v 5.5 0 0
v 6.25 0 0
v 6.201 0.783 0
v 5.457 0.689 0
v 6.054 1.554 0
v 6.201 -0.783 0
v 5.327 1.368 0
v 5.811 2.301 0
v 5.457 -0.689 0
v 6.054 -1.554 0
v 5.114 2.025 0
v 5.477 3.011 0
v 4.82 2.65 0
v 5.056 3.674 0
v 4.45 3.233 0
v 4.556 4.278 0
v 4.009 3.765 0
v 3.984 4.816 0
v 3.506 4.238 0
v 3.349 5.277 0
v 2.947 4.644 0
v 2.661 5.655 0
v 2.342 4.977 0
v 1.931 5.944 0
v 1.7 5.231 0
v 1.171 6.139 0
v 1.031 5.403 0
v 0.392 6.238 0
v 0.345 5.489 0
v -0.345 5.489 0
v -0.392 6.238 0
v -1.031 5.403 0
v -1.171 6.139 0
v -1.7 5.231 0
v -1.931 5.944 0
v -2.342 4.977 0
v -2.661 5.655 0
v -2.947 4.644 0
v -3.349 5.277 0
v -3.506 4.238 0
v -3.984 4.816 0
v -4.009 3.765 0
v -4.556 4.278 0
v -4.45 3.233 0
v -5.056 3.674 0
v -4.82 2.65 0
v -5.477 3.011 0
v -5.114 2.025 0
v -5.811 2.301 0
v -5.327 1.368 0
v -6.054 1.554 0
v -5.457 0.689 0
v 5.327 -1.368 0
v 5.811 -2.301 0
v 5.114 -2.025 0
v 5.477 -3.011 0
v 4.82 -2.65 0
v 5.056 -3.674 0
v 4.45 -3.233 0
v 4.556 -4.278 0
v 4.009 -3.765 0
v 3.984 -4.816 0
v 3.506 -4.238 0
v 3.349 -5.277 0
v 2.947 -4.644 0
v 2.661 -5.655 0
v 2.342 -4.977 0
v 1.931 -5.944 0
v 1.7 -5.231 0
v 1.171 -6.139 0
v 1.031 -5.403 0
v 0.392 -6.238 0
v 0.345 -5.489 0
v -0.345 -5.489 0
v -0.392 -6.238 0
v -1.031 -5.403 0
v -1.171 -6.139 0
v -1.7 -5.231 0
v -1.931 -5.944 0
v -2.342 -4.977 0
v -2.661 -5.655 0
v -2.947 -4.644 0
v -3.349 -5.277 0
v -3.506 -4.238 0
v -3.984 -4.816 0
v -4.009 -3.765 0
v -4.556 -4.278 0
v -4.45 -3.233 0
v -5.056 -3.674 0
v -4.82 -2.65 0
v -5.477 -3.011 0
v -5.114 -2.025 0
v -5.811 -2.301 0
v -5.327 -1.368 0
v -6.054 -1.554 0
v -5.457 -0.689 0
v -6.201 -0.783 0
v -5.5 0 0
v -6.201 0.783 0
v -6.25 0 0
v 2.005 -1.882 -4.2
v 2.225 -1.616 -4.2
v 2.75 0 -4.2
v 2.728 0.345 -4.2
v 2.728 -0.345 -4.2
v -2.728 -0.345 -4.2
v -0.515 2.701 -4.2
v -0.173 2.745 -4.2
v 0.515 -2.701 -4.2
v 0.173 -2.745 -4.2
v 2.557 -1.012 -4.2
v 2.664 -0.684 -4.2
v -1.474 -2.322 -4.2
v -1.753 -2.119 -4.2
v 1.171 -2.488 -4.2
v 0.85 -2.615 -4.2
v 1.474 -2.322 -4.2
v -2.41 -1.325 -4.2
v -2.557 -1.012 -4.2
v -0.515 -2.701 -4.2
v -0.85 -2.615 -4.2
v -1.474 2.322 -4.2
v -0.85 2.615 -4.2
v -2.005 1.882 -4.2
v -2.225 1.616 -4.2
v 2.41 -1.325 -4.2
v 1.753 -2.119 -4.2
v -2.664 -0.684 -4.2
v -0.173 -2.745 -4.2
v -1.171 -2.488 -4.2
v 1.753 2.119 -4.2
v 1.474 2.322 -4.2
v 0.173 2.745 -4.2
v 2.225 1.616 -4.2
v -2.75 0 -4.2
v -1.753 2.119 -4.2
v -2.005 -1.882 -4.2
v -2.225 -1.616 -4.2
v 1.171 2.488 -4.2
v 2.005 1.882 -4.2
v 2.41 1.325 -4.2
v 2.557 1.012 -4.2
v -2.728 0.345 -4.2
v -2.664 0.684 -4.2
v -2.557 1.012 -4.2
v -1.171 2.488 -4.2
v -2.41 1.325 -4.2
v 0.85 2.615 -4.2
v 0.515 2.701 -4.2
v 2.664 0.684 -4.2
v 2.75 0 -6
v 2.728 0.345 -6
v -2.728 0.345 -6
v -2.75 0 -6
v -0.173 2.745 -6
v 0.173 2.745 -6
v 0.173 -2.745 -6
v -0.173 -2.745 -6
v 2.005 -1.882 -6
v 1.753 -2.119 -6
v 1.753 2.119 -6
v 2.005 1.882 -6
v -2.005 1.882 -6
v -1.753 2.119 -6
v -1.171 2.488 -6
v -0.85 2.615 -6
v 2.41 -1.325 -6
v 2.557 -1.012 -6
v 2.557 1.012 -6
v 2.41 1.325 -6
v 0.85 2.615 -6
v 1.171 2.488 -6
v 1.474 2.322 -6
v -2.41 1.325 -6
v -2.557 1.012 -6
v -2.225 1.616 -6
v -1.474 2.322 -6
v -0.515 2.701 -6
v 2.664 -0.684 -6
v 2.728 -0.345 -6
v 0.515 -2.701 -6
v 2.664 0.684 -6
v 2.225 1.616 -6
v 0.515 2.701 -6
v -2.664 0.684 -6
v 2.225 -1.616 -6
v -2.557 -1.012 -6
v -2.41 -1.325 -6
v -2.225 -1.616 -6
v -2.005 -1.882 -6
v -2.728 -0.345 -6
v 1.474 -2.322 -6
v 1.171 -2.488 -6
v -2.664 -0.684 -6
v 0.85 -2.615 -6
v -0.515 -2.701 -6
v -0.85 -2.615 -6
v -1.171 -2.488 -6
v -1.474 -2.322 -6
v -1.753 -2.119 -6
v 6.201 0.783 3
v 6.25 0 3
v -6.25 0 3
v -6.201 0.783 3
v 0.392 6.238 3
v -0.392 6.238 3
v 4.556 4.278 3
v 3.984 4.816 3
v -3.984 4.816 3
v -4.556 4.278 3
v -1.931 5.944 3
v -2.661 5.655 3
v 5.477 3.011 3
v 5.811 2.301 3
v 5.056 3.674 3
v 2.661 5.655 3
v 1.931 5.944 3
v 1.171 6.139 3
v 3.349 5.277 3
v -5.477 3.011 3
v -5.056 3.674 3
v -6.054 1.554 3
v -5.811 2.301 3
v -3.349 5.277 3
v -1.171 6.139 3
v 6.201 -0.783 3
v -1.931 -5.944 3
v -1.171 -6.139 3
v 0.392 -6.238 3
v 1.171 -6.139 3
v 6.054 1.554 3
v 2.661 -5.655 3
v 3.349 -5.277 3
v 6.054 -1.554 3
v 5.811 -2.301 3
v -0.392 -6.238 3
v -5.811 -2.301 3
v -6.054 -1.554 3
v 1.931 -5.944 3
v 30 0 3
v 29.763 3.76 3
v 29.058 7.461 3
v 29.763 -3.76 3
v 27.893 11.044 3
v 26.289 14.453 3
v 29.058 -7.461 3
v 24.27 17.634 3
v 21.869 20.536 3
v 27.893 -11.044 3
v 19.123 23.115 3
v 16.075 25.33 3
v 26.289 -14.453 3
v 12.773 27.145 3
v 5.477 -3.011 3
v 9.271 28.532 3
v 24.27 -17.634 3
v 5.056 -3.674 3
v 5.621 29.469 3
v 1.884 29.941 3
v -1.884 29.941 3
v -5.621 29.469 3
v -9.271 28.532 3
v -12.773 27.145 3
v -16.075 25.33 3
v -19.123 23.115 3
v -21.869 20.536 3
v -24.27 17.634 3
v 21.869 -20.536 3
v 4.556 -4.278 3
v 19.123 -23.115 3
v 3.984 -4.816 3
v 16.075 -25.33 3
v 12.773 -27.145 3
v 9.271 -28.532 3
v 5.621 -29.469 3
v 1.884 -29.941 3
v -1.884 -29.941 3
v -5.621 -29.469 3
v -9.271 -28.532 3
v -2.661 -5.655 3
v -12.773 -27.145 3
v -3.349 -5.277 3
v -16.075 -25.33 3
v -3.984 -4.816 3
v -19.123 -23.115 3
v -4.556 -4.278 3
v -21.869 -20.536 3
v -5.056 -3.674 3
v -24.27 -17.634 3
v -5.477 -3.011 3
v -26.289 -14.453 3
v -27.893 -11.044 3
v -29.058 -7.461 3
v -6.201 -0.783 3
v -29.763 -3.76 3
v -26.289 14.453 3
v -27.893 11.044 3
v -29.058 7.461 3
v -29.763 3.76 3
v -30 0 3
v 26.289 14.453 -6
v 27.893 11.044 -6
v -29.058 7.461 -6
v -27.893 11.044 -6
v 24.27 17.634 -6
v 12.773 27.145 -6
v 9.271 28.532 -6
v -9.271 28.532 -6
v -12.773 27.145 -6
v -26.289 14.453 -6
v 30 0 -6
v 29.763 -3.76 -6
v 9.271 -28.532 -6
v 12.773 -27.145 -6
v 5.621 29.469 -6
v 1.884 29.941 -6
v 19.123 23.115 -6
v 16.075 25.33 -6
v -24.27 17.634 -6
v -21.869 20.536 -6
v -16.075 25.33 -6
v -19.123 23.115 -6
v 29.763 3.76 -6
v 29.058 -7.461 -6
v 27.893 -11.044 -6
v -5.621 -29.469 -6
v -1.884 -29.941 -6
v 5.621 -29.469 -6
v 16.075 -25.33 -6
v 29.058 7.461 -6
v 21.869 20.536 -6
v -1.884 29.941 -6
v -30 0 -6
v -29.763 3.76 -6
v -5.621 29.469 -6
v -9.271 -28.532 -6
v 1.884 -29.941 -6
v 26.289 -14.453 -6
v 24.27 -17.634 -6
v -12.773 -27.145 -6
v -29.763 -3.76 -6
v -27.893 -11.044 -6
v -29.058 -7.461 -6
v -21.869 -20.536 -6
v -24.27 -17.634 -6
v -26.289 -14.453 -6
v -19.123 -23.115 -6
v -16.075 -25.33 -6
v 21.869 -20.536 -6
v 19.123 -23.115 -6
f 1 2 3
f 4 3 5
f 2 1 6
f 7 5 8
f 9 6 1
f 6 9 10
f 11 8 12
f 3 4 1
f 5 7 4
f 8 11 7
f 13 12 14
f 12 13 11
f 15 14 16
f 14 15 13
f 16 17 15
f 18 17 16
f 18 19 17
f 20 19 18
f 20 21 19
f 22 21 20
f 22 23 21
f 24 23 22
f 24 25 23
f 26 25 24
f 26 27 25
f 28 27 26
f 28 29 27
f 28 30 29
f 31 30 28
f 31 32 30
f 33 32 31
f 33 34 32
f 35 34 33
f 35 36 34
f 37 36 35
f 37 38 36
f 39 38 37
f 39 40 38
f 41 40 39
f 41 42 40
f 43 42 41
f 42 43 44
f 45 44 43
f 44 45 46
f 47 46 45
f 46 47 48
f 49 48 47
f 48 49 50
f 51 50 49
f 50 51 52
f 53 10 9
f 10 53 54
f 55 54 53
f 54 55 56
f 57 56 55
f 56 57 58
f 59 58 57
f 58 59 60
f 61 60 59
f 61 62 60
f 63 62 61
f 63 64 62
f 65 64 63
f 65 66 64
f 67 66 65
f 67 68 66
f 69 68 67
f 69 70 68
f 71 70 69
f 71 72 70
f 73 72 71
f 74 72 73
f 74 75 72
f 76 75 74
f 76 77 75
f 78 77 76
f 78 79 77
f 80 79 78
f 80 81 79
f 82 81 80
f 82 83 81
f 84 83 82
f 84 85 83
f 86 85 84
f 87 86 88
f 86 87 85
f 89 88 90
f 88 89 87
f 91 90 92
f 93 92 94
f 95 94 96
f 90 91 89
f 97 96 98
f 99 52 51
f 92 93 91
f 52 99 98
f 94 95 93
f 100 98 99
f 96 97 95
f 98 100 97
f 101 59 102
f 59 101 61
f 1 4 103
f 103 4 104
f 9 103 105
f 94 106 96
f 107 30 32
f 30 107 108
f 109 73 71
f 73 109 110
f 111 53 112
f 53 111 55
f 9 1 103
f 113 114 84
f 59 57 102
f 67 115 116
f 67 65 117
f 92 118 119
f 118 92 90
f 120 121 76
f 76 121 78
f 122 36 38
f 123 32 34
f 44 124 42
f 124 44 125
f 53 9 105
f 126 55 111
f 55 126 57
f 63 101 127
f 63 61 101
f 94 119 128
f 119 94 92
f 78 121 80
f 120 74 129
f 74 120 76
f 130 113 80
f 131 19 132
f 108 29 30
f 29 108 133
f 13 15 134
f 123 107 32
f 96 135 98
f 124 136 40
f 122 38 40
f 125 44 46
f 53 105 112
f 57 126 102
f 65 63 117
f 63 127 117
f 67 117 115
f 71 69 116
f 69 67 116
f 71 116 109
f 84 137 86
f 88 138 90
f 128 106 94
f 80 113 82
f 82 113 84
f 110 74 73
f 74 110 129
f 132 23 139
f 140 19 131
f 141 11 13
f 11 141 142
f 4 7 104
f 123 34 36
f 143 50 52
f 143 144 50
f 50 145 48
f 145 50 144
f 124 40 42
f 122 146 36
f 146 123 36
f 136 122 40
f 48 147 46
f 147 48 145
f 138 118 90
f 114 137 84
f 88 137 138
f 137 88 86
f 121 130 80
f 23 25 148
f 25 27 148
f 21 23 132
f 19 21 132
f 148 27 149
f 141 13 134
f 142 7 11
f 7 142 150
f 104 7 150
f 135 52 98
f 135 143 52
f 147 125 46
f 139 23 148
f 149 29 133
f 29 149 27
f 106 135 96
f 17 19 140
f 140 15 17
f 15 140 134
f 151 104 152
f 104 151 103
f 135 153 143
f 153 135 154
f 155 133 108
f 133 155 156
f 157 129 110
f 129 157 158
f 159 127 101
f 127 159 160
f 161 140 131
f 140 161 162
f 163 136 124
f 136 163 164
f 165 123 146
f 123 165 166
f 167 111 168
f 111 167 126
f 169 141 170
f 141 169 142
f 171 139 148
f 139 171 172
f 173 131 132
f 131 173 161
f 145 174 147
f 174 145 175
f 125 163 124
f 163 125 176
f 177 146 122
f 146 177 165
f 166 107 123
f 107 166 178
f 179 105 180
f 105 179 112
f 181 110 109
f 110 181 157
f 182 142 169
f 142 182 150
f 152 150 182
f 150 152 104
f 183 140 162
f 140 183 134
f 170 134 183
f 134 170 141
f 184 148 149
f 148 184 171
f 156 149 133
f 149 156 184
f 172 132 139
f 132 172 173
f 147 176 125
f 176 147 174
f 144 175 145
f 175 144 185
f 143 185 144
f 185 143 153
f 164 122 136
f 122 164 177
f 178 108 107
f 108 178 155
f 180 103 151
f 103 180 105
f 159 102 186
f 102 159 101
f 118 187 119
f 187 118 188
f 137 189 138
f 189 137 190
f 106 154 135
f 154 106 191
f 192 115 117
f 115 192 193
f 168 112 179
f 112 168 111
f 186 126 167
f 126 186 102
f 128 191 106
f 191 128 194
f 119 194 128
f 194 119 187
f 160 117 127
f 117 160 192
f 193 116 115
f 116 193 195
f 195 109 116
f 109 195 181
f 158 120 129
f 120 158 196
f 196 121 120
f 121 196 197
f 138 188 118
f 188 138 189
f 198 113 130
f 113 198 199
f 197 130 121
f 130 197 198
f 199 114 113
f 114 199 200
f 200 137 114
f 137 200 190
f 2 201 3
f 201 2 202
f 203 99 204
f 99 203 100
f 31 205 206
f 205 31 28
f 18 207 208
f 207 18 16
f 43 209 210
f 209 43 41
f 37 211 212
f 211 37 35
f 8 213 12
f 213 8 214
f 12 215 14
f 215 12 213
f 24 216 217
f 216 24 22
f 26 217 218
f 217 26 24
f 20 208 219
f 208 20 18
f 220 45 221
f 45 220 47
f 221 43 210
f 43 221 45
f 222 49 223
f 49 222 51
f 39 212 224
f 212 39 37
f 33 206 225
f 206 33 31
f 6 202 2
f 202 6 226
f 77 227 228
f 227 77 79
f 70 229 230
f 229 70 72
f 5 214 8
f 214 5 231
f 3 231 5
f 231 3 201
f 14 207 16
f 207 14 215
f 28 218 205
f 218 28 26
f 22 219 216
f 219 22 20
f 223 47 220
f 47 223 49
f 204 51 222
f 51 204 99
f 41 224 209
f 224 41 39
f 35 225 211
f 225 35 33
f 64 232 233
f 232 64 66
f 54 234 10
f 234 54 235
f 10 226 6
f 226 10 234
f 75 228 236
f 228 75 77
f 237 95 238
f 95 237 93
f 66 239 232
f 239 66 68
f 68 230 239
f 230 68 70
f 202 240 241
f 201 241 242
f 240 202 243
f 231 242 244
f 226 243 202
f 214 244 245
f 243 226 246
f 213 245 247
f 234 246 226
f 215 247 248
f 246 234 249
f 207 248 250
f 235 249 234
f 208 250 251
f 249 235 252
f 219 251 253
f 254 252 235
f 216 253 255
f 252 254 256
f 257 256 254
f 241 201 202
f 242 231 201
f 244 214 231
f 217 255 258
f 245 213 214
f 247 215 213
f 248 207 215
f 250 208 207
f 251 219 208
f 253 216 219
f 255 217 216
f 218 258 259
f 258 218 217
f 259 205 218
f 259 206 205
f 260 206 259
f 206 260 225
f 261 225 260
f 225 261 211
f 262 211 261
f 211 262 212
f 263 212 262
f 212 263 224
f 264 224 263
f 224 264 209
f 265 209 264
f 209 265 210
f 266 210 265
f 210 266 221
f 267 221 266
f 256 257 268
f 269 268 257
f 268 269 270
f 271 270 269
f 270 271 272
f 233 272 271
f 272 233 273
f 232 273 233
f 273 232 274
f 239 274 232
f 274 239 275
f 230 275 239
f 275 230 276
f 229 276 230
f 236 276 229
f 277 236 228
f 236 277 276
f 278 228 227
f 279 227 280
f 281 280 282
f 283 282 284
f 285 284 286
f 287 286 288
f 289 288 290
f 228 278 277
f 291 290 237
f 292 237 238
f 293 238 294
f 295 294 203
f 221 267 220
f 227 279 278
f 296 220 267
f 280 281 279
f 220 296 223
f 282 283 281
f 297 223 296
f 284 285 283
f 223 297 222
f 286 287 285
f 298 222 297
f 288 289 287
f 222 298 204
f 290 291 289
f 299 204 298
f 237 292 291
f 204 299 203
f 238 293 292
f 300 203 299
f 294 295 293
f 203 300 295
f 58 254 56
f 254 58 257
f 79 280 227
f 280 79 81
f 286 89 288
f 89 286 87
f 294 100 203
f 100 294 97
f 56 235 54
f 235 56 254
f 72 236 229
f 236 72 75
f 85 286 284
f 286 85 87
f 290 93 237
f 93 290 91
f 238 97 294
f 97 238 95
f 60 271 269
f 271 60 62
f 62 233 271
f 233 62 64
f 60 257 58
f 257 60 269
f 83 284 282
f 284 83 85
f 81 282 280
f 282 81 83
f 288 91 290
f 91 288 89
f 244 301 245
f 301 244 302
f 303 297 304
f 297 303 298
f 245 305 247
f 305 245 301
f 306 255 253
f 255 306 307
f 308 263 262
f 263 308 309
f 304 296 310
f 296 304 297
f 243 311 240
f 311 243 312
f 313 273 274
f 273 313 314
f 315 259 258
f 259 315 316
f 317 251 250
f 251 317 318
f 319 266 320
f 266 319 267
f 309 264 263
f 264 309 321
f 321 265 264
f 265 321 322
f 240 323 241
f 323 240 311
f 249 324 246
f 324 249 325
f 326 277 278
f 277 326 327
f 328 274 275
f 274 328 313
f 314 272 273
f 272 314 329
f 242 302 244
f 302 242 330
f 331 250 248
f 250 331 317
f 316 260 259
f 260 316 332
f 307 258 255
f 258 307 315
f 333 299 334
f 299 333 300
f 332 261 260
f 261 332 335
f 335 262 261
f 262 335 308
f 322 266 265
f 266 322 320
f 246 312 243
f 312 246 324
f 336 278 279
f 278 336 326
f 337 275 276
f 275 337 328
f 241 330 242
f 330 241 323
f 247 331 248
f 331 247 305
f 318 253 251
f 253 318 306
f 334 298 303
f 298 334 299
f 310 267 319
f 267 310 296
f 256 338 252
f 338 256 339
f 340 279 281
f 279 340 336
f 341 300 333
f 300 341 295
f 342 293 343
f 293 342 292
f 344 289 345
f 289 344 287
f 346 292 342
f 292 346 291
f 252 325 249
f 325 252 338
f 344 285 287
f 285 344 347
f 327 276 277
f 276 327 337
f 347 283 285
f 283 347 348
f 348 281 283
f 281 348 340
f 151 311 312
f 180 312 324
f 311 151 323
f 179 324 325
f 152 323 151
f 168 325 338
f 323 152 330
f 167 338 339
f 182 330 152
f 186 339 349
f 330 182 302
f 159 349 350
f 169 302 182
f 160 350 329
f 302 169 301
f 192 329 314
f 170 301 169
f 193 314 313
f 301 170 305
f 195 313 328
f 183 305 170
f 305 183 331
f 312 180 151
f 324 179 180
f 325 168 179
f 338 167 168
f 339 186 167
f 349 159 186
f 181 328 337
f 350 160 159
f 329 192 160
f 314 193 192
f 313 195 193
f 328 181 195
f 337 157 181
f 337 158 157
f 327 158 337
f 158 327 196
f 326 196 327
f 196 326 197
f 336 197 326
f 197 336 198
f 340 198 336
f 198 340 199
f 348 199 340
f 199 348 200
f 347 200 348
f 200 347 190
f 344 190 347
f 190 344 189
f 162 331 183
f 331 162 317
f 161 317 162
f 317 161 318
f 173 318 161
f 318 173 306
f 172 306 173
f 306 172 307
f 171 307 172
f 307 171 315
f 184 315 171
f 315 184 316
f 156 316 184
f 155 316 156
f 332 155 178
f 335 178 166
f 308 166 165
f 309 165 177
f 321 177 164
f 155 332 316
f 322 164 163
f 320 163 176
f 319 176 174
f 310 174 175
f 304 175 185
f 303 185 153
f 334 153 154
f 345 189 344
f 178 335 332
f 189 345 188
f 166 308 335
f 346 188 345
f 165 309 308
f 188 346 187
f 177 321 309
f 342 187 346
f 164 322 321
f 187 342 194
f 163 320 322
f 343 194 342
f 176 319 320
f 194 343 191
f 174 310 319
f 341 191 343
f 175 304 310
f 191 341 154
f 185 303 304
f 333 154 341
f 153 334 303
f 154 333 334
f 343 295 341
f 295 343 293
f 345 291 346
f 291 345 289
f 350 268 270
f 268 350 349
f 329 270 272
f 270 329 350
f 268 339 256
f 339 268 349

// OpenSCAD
$fn = 50;


difference() {
	union() {
		translate(v = [0, 0, -6.0000000000]) {
			cylinder(h = 9, r = 30.0000000000);
		}
	}
	union() {
		translate(v = [0, 0, 0]) {
			rotate(a = [0, 0, 0]) {
				difference() {
					union() {
						translate(v = [0, 0, -9.0000000000]) {
							cylinder(h = 9, r = 2.2500000000);
						}
						translate(v = [0, 0, -4.2000000000]) {
							cylinder(h = 4.2000000000, r1 = 2.7500000000, r2 = 5.5000000000);
						}
						translate(v = [0, 0, -9.0000000000]) {
							cylinder(h = 9, r = 2.7500000000);
						}
						translate(v = [0, 0, -9.0000000000]) {
							cylinder(h = 9, r = 2.2500000000);
						}
					}
					union();
				}
			}
		}
		#cylinder(h = 3, r = 6.2500000000);
	}
}
